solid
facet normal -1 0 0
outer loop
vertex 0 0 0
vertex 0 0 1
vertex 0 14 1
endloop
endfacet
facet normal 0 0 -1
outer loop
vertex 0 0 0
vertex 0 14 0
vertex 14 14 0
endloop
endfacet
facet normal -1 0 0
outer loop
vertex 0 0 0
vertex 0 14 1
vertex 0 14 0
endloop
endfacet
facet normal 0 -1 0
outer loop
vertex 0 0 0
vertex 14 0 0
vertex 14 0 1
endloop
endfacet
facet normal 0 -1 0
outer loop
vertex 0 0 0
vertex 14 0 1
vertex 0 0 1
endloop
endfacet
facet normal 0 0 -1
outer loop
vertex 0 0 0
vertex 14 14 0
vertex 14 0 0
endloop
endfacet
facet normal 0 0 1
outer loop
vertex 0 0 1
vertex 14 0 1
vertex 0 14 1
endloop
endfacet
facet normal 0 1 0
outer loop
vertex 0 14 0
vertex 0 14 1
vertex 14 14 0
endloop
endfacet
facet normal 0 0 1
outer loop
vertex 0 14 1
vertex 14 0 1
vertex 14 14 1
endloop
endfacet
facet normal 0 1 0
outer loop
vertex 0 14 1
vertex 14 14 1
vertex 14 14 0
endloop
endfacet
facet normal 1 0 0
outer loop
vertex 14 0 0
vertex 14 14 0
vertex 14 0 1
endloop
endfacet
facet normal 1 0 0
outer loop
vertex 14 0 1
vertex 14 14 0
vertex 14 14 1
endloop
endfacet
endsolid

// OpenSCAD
/* Warning, this is a very basic generator with a lot of approximation 
input data : [TQFP, 7YX, 14x14x1.0mm, 100, , A, C04-00509A]
generated by com.zoubworld.electronics.cad.model3d.Basic
Date : Sun Feb 15 10:50:48 CET 2026
*/

//body
color("black")
translate([0,0,0])
cube([14.0,14.0,1.0], center=false);
